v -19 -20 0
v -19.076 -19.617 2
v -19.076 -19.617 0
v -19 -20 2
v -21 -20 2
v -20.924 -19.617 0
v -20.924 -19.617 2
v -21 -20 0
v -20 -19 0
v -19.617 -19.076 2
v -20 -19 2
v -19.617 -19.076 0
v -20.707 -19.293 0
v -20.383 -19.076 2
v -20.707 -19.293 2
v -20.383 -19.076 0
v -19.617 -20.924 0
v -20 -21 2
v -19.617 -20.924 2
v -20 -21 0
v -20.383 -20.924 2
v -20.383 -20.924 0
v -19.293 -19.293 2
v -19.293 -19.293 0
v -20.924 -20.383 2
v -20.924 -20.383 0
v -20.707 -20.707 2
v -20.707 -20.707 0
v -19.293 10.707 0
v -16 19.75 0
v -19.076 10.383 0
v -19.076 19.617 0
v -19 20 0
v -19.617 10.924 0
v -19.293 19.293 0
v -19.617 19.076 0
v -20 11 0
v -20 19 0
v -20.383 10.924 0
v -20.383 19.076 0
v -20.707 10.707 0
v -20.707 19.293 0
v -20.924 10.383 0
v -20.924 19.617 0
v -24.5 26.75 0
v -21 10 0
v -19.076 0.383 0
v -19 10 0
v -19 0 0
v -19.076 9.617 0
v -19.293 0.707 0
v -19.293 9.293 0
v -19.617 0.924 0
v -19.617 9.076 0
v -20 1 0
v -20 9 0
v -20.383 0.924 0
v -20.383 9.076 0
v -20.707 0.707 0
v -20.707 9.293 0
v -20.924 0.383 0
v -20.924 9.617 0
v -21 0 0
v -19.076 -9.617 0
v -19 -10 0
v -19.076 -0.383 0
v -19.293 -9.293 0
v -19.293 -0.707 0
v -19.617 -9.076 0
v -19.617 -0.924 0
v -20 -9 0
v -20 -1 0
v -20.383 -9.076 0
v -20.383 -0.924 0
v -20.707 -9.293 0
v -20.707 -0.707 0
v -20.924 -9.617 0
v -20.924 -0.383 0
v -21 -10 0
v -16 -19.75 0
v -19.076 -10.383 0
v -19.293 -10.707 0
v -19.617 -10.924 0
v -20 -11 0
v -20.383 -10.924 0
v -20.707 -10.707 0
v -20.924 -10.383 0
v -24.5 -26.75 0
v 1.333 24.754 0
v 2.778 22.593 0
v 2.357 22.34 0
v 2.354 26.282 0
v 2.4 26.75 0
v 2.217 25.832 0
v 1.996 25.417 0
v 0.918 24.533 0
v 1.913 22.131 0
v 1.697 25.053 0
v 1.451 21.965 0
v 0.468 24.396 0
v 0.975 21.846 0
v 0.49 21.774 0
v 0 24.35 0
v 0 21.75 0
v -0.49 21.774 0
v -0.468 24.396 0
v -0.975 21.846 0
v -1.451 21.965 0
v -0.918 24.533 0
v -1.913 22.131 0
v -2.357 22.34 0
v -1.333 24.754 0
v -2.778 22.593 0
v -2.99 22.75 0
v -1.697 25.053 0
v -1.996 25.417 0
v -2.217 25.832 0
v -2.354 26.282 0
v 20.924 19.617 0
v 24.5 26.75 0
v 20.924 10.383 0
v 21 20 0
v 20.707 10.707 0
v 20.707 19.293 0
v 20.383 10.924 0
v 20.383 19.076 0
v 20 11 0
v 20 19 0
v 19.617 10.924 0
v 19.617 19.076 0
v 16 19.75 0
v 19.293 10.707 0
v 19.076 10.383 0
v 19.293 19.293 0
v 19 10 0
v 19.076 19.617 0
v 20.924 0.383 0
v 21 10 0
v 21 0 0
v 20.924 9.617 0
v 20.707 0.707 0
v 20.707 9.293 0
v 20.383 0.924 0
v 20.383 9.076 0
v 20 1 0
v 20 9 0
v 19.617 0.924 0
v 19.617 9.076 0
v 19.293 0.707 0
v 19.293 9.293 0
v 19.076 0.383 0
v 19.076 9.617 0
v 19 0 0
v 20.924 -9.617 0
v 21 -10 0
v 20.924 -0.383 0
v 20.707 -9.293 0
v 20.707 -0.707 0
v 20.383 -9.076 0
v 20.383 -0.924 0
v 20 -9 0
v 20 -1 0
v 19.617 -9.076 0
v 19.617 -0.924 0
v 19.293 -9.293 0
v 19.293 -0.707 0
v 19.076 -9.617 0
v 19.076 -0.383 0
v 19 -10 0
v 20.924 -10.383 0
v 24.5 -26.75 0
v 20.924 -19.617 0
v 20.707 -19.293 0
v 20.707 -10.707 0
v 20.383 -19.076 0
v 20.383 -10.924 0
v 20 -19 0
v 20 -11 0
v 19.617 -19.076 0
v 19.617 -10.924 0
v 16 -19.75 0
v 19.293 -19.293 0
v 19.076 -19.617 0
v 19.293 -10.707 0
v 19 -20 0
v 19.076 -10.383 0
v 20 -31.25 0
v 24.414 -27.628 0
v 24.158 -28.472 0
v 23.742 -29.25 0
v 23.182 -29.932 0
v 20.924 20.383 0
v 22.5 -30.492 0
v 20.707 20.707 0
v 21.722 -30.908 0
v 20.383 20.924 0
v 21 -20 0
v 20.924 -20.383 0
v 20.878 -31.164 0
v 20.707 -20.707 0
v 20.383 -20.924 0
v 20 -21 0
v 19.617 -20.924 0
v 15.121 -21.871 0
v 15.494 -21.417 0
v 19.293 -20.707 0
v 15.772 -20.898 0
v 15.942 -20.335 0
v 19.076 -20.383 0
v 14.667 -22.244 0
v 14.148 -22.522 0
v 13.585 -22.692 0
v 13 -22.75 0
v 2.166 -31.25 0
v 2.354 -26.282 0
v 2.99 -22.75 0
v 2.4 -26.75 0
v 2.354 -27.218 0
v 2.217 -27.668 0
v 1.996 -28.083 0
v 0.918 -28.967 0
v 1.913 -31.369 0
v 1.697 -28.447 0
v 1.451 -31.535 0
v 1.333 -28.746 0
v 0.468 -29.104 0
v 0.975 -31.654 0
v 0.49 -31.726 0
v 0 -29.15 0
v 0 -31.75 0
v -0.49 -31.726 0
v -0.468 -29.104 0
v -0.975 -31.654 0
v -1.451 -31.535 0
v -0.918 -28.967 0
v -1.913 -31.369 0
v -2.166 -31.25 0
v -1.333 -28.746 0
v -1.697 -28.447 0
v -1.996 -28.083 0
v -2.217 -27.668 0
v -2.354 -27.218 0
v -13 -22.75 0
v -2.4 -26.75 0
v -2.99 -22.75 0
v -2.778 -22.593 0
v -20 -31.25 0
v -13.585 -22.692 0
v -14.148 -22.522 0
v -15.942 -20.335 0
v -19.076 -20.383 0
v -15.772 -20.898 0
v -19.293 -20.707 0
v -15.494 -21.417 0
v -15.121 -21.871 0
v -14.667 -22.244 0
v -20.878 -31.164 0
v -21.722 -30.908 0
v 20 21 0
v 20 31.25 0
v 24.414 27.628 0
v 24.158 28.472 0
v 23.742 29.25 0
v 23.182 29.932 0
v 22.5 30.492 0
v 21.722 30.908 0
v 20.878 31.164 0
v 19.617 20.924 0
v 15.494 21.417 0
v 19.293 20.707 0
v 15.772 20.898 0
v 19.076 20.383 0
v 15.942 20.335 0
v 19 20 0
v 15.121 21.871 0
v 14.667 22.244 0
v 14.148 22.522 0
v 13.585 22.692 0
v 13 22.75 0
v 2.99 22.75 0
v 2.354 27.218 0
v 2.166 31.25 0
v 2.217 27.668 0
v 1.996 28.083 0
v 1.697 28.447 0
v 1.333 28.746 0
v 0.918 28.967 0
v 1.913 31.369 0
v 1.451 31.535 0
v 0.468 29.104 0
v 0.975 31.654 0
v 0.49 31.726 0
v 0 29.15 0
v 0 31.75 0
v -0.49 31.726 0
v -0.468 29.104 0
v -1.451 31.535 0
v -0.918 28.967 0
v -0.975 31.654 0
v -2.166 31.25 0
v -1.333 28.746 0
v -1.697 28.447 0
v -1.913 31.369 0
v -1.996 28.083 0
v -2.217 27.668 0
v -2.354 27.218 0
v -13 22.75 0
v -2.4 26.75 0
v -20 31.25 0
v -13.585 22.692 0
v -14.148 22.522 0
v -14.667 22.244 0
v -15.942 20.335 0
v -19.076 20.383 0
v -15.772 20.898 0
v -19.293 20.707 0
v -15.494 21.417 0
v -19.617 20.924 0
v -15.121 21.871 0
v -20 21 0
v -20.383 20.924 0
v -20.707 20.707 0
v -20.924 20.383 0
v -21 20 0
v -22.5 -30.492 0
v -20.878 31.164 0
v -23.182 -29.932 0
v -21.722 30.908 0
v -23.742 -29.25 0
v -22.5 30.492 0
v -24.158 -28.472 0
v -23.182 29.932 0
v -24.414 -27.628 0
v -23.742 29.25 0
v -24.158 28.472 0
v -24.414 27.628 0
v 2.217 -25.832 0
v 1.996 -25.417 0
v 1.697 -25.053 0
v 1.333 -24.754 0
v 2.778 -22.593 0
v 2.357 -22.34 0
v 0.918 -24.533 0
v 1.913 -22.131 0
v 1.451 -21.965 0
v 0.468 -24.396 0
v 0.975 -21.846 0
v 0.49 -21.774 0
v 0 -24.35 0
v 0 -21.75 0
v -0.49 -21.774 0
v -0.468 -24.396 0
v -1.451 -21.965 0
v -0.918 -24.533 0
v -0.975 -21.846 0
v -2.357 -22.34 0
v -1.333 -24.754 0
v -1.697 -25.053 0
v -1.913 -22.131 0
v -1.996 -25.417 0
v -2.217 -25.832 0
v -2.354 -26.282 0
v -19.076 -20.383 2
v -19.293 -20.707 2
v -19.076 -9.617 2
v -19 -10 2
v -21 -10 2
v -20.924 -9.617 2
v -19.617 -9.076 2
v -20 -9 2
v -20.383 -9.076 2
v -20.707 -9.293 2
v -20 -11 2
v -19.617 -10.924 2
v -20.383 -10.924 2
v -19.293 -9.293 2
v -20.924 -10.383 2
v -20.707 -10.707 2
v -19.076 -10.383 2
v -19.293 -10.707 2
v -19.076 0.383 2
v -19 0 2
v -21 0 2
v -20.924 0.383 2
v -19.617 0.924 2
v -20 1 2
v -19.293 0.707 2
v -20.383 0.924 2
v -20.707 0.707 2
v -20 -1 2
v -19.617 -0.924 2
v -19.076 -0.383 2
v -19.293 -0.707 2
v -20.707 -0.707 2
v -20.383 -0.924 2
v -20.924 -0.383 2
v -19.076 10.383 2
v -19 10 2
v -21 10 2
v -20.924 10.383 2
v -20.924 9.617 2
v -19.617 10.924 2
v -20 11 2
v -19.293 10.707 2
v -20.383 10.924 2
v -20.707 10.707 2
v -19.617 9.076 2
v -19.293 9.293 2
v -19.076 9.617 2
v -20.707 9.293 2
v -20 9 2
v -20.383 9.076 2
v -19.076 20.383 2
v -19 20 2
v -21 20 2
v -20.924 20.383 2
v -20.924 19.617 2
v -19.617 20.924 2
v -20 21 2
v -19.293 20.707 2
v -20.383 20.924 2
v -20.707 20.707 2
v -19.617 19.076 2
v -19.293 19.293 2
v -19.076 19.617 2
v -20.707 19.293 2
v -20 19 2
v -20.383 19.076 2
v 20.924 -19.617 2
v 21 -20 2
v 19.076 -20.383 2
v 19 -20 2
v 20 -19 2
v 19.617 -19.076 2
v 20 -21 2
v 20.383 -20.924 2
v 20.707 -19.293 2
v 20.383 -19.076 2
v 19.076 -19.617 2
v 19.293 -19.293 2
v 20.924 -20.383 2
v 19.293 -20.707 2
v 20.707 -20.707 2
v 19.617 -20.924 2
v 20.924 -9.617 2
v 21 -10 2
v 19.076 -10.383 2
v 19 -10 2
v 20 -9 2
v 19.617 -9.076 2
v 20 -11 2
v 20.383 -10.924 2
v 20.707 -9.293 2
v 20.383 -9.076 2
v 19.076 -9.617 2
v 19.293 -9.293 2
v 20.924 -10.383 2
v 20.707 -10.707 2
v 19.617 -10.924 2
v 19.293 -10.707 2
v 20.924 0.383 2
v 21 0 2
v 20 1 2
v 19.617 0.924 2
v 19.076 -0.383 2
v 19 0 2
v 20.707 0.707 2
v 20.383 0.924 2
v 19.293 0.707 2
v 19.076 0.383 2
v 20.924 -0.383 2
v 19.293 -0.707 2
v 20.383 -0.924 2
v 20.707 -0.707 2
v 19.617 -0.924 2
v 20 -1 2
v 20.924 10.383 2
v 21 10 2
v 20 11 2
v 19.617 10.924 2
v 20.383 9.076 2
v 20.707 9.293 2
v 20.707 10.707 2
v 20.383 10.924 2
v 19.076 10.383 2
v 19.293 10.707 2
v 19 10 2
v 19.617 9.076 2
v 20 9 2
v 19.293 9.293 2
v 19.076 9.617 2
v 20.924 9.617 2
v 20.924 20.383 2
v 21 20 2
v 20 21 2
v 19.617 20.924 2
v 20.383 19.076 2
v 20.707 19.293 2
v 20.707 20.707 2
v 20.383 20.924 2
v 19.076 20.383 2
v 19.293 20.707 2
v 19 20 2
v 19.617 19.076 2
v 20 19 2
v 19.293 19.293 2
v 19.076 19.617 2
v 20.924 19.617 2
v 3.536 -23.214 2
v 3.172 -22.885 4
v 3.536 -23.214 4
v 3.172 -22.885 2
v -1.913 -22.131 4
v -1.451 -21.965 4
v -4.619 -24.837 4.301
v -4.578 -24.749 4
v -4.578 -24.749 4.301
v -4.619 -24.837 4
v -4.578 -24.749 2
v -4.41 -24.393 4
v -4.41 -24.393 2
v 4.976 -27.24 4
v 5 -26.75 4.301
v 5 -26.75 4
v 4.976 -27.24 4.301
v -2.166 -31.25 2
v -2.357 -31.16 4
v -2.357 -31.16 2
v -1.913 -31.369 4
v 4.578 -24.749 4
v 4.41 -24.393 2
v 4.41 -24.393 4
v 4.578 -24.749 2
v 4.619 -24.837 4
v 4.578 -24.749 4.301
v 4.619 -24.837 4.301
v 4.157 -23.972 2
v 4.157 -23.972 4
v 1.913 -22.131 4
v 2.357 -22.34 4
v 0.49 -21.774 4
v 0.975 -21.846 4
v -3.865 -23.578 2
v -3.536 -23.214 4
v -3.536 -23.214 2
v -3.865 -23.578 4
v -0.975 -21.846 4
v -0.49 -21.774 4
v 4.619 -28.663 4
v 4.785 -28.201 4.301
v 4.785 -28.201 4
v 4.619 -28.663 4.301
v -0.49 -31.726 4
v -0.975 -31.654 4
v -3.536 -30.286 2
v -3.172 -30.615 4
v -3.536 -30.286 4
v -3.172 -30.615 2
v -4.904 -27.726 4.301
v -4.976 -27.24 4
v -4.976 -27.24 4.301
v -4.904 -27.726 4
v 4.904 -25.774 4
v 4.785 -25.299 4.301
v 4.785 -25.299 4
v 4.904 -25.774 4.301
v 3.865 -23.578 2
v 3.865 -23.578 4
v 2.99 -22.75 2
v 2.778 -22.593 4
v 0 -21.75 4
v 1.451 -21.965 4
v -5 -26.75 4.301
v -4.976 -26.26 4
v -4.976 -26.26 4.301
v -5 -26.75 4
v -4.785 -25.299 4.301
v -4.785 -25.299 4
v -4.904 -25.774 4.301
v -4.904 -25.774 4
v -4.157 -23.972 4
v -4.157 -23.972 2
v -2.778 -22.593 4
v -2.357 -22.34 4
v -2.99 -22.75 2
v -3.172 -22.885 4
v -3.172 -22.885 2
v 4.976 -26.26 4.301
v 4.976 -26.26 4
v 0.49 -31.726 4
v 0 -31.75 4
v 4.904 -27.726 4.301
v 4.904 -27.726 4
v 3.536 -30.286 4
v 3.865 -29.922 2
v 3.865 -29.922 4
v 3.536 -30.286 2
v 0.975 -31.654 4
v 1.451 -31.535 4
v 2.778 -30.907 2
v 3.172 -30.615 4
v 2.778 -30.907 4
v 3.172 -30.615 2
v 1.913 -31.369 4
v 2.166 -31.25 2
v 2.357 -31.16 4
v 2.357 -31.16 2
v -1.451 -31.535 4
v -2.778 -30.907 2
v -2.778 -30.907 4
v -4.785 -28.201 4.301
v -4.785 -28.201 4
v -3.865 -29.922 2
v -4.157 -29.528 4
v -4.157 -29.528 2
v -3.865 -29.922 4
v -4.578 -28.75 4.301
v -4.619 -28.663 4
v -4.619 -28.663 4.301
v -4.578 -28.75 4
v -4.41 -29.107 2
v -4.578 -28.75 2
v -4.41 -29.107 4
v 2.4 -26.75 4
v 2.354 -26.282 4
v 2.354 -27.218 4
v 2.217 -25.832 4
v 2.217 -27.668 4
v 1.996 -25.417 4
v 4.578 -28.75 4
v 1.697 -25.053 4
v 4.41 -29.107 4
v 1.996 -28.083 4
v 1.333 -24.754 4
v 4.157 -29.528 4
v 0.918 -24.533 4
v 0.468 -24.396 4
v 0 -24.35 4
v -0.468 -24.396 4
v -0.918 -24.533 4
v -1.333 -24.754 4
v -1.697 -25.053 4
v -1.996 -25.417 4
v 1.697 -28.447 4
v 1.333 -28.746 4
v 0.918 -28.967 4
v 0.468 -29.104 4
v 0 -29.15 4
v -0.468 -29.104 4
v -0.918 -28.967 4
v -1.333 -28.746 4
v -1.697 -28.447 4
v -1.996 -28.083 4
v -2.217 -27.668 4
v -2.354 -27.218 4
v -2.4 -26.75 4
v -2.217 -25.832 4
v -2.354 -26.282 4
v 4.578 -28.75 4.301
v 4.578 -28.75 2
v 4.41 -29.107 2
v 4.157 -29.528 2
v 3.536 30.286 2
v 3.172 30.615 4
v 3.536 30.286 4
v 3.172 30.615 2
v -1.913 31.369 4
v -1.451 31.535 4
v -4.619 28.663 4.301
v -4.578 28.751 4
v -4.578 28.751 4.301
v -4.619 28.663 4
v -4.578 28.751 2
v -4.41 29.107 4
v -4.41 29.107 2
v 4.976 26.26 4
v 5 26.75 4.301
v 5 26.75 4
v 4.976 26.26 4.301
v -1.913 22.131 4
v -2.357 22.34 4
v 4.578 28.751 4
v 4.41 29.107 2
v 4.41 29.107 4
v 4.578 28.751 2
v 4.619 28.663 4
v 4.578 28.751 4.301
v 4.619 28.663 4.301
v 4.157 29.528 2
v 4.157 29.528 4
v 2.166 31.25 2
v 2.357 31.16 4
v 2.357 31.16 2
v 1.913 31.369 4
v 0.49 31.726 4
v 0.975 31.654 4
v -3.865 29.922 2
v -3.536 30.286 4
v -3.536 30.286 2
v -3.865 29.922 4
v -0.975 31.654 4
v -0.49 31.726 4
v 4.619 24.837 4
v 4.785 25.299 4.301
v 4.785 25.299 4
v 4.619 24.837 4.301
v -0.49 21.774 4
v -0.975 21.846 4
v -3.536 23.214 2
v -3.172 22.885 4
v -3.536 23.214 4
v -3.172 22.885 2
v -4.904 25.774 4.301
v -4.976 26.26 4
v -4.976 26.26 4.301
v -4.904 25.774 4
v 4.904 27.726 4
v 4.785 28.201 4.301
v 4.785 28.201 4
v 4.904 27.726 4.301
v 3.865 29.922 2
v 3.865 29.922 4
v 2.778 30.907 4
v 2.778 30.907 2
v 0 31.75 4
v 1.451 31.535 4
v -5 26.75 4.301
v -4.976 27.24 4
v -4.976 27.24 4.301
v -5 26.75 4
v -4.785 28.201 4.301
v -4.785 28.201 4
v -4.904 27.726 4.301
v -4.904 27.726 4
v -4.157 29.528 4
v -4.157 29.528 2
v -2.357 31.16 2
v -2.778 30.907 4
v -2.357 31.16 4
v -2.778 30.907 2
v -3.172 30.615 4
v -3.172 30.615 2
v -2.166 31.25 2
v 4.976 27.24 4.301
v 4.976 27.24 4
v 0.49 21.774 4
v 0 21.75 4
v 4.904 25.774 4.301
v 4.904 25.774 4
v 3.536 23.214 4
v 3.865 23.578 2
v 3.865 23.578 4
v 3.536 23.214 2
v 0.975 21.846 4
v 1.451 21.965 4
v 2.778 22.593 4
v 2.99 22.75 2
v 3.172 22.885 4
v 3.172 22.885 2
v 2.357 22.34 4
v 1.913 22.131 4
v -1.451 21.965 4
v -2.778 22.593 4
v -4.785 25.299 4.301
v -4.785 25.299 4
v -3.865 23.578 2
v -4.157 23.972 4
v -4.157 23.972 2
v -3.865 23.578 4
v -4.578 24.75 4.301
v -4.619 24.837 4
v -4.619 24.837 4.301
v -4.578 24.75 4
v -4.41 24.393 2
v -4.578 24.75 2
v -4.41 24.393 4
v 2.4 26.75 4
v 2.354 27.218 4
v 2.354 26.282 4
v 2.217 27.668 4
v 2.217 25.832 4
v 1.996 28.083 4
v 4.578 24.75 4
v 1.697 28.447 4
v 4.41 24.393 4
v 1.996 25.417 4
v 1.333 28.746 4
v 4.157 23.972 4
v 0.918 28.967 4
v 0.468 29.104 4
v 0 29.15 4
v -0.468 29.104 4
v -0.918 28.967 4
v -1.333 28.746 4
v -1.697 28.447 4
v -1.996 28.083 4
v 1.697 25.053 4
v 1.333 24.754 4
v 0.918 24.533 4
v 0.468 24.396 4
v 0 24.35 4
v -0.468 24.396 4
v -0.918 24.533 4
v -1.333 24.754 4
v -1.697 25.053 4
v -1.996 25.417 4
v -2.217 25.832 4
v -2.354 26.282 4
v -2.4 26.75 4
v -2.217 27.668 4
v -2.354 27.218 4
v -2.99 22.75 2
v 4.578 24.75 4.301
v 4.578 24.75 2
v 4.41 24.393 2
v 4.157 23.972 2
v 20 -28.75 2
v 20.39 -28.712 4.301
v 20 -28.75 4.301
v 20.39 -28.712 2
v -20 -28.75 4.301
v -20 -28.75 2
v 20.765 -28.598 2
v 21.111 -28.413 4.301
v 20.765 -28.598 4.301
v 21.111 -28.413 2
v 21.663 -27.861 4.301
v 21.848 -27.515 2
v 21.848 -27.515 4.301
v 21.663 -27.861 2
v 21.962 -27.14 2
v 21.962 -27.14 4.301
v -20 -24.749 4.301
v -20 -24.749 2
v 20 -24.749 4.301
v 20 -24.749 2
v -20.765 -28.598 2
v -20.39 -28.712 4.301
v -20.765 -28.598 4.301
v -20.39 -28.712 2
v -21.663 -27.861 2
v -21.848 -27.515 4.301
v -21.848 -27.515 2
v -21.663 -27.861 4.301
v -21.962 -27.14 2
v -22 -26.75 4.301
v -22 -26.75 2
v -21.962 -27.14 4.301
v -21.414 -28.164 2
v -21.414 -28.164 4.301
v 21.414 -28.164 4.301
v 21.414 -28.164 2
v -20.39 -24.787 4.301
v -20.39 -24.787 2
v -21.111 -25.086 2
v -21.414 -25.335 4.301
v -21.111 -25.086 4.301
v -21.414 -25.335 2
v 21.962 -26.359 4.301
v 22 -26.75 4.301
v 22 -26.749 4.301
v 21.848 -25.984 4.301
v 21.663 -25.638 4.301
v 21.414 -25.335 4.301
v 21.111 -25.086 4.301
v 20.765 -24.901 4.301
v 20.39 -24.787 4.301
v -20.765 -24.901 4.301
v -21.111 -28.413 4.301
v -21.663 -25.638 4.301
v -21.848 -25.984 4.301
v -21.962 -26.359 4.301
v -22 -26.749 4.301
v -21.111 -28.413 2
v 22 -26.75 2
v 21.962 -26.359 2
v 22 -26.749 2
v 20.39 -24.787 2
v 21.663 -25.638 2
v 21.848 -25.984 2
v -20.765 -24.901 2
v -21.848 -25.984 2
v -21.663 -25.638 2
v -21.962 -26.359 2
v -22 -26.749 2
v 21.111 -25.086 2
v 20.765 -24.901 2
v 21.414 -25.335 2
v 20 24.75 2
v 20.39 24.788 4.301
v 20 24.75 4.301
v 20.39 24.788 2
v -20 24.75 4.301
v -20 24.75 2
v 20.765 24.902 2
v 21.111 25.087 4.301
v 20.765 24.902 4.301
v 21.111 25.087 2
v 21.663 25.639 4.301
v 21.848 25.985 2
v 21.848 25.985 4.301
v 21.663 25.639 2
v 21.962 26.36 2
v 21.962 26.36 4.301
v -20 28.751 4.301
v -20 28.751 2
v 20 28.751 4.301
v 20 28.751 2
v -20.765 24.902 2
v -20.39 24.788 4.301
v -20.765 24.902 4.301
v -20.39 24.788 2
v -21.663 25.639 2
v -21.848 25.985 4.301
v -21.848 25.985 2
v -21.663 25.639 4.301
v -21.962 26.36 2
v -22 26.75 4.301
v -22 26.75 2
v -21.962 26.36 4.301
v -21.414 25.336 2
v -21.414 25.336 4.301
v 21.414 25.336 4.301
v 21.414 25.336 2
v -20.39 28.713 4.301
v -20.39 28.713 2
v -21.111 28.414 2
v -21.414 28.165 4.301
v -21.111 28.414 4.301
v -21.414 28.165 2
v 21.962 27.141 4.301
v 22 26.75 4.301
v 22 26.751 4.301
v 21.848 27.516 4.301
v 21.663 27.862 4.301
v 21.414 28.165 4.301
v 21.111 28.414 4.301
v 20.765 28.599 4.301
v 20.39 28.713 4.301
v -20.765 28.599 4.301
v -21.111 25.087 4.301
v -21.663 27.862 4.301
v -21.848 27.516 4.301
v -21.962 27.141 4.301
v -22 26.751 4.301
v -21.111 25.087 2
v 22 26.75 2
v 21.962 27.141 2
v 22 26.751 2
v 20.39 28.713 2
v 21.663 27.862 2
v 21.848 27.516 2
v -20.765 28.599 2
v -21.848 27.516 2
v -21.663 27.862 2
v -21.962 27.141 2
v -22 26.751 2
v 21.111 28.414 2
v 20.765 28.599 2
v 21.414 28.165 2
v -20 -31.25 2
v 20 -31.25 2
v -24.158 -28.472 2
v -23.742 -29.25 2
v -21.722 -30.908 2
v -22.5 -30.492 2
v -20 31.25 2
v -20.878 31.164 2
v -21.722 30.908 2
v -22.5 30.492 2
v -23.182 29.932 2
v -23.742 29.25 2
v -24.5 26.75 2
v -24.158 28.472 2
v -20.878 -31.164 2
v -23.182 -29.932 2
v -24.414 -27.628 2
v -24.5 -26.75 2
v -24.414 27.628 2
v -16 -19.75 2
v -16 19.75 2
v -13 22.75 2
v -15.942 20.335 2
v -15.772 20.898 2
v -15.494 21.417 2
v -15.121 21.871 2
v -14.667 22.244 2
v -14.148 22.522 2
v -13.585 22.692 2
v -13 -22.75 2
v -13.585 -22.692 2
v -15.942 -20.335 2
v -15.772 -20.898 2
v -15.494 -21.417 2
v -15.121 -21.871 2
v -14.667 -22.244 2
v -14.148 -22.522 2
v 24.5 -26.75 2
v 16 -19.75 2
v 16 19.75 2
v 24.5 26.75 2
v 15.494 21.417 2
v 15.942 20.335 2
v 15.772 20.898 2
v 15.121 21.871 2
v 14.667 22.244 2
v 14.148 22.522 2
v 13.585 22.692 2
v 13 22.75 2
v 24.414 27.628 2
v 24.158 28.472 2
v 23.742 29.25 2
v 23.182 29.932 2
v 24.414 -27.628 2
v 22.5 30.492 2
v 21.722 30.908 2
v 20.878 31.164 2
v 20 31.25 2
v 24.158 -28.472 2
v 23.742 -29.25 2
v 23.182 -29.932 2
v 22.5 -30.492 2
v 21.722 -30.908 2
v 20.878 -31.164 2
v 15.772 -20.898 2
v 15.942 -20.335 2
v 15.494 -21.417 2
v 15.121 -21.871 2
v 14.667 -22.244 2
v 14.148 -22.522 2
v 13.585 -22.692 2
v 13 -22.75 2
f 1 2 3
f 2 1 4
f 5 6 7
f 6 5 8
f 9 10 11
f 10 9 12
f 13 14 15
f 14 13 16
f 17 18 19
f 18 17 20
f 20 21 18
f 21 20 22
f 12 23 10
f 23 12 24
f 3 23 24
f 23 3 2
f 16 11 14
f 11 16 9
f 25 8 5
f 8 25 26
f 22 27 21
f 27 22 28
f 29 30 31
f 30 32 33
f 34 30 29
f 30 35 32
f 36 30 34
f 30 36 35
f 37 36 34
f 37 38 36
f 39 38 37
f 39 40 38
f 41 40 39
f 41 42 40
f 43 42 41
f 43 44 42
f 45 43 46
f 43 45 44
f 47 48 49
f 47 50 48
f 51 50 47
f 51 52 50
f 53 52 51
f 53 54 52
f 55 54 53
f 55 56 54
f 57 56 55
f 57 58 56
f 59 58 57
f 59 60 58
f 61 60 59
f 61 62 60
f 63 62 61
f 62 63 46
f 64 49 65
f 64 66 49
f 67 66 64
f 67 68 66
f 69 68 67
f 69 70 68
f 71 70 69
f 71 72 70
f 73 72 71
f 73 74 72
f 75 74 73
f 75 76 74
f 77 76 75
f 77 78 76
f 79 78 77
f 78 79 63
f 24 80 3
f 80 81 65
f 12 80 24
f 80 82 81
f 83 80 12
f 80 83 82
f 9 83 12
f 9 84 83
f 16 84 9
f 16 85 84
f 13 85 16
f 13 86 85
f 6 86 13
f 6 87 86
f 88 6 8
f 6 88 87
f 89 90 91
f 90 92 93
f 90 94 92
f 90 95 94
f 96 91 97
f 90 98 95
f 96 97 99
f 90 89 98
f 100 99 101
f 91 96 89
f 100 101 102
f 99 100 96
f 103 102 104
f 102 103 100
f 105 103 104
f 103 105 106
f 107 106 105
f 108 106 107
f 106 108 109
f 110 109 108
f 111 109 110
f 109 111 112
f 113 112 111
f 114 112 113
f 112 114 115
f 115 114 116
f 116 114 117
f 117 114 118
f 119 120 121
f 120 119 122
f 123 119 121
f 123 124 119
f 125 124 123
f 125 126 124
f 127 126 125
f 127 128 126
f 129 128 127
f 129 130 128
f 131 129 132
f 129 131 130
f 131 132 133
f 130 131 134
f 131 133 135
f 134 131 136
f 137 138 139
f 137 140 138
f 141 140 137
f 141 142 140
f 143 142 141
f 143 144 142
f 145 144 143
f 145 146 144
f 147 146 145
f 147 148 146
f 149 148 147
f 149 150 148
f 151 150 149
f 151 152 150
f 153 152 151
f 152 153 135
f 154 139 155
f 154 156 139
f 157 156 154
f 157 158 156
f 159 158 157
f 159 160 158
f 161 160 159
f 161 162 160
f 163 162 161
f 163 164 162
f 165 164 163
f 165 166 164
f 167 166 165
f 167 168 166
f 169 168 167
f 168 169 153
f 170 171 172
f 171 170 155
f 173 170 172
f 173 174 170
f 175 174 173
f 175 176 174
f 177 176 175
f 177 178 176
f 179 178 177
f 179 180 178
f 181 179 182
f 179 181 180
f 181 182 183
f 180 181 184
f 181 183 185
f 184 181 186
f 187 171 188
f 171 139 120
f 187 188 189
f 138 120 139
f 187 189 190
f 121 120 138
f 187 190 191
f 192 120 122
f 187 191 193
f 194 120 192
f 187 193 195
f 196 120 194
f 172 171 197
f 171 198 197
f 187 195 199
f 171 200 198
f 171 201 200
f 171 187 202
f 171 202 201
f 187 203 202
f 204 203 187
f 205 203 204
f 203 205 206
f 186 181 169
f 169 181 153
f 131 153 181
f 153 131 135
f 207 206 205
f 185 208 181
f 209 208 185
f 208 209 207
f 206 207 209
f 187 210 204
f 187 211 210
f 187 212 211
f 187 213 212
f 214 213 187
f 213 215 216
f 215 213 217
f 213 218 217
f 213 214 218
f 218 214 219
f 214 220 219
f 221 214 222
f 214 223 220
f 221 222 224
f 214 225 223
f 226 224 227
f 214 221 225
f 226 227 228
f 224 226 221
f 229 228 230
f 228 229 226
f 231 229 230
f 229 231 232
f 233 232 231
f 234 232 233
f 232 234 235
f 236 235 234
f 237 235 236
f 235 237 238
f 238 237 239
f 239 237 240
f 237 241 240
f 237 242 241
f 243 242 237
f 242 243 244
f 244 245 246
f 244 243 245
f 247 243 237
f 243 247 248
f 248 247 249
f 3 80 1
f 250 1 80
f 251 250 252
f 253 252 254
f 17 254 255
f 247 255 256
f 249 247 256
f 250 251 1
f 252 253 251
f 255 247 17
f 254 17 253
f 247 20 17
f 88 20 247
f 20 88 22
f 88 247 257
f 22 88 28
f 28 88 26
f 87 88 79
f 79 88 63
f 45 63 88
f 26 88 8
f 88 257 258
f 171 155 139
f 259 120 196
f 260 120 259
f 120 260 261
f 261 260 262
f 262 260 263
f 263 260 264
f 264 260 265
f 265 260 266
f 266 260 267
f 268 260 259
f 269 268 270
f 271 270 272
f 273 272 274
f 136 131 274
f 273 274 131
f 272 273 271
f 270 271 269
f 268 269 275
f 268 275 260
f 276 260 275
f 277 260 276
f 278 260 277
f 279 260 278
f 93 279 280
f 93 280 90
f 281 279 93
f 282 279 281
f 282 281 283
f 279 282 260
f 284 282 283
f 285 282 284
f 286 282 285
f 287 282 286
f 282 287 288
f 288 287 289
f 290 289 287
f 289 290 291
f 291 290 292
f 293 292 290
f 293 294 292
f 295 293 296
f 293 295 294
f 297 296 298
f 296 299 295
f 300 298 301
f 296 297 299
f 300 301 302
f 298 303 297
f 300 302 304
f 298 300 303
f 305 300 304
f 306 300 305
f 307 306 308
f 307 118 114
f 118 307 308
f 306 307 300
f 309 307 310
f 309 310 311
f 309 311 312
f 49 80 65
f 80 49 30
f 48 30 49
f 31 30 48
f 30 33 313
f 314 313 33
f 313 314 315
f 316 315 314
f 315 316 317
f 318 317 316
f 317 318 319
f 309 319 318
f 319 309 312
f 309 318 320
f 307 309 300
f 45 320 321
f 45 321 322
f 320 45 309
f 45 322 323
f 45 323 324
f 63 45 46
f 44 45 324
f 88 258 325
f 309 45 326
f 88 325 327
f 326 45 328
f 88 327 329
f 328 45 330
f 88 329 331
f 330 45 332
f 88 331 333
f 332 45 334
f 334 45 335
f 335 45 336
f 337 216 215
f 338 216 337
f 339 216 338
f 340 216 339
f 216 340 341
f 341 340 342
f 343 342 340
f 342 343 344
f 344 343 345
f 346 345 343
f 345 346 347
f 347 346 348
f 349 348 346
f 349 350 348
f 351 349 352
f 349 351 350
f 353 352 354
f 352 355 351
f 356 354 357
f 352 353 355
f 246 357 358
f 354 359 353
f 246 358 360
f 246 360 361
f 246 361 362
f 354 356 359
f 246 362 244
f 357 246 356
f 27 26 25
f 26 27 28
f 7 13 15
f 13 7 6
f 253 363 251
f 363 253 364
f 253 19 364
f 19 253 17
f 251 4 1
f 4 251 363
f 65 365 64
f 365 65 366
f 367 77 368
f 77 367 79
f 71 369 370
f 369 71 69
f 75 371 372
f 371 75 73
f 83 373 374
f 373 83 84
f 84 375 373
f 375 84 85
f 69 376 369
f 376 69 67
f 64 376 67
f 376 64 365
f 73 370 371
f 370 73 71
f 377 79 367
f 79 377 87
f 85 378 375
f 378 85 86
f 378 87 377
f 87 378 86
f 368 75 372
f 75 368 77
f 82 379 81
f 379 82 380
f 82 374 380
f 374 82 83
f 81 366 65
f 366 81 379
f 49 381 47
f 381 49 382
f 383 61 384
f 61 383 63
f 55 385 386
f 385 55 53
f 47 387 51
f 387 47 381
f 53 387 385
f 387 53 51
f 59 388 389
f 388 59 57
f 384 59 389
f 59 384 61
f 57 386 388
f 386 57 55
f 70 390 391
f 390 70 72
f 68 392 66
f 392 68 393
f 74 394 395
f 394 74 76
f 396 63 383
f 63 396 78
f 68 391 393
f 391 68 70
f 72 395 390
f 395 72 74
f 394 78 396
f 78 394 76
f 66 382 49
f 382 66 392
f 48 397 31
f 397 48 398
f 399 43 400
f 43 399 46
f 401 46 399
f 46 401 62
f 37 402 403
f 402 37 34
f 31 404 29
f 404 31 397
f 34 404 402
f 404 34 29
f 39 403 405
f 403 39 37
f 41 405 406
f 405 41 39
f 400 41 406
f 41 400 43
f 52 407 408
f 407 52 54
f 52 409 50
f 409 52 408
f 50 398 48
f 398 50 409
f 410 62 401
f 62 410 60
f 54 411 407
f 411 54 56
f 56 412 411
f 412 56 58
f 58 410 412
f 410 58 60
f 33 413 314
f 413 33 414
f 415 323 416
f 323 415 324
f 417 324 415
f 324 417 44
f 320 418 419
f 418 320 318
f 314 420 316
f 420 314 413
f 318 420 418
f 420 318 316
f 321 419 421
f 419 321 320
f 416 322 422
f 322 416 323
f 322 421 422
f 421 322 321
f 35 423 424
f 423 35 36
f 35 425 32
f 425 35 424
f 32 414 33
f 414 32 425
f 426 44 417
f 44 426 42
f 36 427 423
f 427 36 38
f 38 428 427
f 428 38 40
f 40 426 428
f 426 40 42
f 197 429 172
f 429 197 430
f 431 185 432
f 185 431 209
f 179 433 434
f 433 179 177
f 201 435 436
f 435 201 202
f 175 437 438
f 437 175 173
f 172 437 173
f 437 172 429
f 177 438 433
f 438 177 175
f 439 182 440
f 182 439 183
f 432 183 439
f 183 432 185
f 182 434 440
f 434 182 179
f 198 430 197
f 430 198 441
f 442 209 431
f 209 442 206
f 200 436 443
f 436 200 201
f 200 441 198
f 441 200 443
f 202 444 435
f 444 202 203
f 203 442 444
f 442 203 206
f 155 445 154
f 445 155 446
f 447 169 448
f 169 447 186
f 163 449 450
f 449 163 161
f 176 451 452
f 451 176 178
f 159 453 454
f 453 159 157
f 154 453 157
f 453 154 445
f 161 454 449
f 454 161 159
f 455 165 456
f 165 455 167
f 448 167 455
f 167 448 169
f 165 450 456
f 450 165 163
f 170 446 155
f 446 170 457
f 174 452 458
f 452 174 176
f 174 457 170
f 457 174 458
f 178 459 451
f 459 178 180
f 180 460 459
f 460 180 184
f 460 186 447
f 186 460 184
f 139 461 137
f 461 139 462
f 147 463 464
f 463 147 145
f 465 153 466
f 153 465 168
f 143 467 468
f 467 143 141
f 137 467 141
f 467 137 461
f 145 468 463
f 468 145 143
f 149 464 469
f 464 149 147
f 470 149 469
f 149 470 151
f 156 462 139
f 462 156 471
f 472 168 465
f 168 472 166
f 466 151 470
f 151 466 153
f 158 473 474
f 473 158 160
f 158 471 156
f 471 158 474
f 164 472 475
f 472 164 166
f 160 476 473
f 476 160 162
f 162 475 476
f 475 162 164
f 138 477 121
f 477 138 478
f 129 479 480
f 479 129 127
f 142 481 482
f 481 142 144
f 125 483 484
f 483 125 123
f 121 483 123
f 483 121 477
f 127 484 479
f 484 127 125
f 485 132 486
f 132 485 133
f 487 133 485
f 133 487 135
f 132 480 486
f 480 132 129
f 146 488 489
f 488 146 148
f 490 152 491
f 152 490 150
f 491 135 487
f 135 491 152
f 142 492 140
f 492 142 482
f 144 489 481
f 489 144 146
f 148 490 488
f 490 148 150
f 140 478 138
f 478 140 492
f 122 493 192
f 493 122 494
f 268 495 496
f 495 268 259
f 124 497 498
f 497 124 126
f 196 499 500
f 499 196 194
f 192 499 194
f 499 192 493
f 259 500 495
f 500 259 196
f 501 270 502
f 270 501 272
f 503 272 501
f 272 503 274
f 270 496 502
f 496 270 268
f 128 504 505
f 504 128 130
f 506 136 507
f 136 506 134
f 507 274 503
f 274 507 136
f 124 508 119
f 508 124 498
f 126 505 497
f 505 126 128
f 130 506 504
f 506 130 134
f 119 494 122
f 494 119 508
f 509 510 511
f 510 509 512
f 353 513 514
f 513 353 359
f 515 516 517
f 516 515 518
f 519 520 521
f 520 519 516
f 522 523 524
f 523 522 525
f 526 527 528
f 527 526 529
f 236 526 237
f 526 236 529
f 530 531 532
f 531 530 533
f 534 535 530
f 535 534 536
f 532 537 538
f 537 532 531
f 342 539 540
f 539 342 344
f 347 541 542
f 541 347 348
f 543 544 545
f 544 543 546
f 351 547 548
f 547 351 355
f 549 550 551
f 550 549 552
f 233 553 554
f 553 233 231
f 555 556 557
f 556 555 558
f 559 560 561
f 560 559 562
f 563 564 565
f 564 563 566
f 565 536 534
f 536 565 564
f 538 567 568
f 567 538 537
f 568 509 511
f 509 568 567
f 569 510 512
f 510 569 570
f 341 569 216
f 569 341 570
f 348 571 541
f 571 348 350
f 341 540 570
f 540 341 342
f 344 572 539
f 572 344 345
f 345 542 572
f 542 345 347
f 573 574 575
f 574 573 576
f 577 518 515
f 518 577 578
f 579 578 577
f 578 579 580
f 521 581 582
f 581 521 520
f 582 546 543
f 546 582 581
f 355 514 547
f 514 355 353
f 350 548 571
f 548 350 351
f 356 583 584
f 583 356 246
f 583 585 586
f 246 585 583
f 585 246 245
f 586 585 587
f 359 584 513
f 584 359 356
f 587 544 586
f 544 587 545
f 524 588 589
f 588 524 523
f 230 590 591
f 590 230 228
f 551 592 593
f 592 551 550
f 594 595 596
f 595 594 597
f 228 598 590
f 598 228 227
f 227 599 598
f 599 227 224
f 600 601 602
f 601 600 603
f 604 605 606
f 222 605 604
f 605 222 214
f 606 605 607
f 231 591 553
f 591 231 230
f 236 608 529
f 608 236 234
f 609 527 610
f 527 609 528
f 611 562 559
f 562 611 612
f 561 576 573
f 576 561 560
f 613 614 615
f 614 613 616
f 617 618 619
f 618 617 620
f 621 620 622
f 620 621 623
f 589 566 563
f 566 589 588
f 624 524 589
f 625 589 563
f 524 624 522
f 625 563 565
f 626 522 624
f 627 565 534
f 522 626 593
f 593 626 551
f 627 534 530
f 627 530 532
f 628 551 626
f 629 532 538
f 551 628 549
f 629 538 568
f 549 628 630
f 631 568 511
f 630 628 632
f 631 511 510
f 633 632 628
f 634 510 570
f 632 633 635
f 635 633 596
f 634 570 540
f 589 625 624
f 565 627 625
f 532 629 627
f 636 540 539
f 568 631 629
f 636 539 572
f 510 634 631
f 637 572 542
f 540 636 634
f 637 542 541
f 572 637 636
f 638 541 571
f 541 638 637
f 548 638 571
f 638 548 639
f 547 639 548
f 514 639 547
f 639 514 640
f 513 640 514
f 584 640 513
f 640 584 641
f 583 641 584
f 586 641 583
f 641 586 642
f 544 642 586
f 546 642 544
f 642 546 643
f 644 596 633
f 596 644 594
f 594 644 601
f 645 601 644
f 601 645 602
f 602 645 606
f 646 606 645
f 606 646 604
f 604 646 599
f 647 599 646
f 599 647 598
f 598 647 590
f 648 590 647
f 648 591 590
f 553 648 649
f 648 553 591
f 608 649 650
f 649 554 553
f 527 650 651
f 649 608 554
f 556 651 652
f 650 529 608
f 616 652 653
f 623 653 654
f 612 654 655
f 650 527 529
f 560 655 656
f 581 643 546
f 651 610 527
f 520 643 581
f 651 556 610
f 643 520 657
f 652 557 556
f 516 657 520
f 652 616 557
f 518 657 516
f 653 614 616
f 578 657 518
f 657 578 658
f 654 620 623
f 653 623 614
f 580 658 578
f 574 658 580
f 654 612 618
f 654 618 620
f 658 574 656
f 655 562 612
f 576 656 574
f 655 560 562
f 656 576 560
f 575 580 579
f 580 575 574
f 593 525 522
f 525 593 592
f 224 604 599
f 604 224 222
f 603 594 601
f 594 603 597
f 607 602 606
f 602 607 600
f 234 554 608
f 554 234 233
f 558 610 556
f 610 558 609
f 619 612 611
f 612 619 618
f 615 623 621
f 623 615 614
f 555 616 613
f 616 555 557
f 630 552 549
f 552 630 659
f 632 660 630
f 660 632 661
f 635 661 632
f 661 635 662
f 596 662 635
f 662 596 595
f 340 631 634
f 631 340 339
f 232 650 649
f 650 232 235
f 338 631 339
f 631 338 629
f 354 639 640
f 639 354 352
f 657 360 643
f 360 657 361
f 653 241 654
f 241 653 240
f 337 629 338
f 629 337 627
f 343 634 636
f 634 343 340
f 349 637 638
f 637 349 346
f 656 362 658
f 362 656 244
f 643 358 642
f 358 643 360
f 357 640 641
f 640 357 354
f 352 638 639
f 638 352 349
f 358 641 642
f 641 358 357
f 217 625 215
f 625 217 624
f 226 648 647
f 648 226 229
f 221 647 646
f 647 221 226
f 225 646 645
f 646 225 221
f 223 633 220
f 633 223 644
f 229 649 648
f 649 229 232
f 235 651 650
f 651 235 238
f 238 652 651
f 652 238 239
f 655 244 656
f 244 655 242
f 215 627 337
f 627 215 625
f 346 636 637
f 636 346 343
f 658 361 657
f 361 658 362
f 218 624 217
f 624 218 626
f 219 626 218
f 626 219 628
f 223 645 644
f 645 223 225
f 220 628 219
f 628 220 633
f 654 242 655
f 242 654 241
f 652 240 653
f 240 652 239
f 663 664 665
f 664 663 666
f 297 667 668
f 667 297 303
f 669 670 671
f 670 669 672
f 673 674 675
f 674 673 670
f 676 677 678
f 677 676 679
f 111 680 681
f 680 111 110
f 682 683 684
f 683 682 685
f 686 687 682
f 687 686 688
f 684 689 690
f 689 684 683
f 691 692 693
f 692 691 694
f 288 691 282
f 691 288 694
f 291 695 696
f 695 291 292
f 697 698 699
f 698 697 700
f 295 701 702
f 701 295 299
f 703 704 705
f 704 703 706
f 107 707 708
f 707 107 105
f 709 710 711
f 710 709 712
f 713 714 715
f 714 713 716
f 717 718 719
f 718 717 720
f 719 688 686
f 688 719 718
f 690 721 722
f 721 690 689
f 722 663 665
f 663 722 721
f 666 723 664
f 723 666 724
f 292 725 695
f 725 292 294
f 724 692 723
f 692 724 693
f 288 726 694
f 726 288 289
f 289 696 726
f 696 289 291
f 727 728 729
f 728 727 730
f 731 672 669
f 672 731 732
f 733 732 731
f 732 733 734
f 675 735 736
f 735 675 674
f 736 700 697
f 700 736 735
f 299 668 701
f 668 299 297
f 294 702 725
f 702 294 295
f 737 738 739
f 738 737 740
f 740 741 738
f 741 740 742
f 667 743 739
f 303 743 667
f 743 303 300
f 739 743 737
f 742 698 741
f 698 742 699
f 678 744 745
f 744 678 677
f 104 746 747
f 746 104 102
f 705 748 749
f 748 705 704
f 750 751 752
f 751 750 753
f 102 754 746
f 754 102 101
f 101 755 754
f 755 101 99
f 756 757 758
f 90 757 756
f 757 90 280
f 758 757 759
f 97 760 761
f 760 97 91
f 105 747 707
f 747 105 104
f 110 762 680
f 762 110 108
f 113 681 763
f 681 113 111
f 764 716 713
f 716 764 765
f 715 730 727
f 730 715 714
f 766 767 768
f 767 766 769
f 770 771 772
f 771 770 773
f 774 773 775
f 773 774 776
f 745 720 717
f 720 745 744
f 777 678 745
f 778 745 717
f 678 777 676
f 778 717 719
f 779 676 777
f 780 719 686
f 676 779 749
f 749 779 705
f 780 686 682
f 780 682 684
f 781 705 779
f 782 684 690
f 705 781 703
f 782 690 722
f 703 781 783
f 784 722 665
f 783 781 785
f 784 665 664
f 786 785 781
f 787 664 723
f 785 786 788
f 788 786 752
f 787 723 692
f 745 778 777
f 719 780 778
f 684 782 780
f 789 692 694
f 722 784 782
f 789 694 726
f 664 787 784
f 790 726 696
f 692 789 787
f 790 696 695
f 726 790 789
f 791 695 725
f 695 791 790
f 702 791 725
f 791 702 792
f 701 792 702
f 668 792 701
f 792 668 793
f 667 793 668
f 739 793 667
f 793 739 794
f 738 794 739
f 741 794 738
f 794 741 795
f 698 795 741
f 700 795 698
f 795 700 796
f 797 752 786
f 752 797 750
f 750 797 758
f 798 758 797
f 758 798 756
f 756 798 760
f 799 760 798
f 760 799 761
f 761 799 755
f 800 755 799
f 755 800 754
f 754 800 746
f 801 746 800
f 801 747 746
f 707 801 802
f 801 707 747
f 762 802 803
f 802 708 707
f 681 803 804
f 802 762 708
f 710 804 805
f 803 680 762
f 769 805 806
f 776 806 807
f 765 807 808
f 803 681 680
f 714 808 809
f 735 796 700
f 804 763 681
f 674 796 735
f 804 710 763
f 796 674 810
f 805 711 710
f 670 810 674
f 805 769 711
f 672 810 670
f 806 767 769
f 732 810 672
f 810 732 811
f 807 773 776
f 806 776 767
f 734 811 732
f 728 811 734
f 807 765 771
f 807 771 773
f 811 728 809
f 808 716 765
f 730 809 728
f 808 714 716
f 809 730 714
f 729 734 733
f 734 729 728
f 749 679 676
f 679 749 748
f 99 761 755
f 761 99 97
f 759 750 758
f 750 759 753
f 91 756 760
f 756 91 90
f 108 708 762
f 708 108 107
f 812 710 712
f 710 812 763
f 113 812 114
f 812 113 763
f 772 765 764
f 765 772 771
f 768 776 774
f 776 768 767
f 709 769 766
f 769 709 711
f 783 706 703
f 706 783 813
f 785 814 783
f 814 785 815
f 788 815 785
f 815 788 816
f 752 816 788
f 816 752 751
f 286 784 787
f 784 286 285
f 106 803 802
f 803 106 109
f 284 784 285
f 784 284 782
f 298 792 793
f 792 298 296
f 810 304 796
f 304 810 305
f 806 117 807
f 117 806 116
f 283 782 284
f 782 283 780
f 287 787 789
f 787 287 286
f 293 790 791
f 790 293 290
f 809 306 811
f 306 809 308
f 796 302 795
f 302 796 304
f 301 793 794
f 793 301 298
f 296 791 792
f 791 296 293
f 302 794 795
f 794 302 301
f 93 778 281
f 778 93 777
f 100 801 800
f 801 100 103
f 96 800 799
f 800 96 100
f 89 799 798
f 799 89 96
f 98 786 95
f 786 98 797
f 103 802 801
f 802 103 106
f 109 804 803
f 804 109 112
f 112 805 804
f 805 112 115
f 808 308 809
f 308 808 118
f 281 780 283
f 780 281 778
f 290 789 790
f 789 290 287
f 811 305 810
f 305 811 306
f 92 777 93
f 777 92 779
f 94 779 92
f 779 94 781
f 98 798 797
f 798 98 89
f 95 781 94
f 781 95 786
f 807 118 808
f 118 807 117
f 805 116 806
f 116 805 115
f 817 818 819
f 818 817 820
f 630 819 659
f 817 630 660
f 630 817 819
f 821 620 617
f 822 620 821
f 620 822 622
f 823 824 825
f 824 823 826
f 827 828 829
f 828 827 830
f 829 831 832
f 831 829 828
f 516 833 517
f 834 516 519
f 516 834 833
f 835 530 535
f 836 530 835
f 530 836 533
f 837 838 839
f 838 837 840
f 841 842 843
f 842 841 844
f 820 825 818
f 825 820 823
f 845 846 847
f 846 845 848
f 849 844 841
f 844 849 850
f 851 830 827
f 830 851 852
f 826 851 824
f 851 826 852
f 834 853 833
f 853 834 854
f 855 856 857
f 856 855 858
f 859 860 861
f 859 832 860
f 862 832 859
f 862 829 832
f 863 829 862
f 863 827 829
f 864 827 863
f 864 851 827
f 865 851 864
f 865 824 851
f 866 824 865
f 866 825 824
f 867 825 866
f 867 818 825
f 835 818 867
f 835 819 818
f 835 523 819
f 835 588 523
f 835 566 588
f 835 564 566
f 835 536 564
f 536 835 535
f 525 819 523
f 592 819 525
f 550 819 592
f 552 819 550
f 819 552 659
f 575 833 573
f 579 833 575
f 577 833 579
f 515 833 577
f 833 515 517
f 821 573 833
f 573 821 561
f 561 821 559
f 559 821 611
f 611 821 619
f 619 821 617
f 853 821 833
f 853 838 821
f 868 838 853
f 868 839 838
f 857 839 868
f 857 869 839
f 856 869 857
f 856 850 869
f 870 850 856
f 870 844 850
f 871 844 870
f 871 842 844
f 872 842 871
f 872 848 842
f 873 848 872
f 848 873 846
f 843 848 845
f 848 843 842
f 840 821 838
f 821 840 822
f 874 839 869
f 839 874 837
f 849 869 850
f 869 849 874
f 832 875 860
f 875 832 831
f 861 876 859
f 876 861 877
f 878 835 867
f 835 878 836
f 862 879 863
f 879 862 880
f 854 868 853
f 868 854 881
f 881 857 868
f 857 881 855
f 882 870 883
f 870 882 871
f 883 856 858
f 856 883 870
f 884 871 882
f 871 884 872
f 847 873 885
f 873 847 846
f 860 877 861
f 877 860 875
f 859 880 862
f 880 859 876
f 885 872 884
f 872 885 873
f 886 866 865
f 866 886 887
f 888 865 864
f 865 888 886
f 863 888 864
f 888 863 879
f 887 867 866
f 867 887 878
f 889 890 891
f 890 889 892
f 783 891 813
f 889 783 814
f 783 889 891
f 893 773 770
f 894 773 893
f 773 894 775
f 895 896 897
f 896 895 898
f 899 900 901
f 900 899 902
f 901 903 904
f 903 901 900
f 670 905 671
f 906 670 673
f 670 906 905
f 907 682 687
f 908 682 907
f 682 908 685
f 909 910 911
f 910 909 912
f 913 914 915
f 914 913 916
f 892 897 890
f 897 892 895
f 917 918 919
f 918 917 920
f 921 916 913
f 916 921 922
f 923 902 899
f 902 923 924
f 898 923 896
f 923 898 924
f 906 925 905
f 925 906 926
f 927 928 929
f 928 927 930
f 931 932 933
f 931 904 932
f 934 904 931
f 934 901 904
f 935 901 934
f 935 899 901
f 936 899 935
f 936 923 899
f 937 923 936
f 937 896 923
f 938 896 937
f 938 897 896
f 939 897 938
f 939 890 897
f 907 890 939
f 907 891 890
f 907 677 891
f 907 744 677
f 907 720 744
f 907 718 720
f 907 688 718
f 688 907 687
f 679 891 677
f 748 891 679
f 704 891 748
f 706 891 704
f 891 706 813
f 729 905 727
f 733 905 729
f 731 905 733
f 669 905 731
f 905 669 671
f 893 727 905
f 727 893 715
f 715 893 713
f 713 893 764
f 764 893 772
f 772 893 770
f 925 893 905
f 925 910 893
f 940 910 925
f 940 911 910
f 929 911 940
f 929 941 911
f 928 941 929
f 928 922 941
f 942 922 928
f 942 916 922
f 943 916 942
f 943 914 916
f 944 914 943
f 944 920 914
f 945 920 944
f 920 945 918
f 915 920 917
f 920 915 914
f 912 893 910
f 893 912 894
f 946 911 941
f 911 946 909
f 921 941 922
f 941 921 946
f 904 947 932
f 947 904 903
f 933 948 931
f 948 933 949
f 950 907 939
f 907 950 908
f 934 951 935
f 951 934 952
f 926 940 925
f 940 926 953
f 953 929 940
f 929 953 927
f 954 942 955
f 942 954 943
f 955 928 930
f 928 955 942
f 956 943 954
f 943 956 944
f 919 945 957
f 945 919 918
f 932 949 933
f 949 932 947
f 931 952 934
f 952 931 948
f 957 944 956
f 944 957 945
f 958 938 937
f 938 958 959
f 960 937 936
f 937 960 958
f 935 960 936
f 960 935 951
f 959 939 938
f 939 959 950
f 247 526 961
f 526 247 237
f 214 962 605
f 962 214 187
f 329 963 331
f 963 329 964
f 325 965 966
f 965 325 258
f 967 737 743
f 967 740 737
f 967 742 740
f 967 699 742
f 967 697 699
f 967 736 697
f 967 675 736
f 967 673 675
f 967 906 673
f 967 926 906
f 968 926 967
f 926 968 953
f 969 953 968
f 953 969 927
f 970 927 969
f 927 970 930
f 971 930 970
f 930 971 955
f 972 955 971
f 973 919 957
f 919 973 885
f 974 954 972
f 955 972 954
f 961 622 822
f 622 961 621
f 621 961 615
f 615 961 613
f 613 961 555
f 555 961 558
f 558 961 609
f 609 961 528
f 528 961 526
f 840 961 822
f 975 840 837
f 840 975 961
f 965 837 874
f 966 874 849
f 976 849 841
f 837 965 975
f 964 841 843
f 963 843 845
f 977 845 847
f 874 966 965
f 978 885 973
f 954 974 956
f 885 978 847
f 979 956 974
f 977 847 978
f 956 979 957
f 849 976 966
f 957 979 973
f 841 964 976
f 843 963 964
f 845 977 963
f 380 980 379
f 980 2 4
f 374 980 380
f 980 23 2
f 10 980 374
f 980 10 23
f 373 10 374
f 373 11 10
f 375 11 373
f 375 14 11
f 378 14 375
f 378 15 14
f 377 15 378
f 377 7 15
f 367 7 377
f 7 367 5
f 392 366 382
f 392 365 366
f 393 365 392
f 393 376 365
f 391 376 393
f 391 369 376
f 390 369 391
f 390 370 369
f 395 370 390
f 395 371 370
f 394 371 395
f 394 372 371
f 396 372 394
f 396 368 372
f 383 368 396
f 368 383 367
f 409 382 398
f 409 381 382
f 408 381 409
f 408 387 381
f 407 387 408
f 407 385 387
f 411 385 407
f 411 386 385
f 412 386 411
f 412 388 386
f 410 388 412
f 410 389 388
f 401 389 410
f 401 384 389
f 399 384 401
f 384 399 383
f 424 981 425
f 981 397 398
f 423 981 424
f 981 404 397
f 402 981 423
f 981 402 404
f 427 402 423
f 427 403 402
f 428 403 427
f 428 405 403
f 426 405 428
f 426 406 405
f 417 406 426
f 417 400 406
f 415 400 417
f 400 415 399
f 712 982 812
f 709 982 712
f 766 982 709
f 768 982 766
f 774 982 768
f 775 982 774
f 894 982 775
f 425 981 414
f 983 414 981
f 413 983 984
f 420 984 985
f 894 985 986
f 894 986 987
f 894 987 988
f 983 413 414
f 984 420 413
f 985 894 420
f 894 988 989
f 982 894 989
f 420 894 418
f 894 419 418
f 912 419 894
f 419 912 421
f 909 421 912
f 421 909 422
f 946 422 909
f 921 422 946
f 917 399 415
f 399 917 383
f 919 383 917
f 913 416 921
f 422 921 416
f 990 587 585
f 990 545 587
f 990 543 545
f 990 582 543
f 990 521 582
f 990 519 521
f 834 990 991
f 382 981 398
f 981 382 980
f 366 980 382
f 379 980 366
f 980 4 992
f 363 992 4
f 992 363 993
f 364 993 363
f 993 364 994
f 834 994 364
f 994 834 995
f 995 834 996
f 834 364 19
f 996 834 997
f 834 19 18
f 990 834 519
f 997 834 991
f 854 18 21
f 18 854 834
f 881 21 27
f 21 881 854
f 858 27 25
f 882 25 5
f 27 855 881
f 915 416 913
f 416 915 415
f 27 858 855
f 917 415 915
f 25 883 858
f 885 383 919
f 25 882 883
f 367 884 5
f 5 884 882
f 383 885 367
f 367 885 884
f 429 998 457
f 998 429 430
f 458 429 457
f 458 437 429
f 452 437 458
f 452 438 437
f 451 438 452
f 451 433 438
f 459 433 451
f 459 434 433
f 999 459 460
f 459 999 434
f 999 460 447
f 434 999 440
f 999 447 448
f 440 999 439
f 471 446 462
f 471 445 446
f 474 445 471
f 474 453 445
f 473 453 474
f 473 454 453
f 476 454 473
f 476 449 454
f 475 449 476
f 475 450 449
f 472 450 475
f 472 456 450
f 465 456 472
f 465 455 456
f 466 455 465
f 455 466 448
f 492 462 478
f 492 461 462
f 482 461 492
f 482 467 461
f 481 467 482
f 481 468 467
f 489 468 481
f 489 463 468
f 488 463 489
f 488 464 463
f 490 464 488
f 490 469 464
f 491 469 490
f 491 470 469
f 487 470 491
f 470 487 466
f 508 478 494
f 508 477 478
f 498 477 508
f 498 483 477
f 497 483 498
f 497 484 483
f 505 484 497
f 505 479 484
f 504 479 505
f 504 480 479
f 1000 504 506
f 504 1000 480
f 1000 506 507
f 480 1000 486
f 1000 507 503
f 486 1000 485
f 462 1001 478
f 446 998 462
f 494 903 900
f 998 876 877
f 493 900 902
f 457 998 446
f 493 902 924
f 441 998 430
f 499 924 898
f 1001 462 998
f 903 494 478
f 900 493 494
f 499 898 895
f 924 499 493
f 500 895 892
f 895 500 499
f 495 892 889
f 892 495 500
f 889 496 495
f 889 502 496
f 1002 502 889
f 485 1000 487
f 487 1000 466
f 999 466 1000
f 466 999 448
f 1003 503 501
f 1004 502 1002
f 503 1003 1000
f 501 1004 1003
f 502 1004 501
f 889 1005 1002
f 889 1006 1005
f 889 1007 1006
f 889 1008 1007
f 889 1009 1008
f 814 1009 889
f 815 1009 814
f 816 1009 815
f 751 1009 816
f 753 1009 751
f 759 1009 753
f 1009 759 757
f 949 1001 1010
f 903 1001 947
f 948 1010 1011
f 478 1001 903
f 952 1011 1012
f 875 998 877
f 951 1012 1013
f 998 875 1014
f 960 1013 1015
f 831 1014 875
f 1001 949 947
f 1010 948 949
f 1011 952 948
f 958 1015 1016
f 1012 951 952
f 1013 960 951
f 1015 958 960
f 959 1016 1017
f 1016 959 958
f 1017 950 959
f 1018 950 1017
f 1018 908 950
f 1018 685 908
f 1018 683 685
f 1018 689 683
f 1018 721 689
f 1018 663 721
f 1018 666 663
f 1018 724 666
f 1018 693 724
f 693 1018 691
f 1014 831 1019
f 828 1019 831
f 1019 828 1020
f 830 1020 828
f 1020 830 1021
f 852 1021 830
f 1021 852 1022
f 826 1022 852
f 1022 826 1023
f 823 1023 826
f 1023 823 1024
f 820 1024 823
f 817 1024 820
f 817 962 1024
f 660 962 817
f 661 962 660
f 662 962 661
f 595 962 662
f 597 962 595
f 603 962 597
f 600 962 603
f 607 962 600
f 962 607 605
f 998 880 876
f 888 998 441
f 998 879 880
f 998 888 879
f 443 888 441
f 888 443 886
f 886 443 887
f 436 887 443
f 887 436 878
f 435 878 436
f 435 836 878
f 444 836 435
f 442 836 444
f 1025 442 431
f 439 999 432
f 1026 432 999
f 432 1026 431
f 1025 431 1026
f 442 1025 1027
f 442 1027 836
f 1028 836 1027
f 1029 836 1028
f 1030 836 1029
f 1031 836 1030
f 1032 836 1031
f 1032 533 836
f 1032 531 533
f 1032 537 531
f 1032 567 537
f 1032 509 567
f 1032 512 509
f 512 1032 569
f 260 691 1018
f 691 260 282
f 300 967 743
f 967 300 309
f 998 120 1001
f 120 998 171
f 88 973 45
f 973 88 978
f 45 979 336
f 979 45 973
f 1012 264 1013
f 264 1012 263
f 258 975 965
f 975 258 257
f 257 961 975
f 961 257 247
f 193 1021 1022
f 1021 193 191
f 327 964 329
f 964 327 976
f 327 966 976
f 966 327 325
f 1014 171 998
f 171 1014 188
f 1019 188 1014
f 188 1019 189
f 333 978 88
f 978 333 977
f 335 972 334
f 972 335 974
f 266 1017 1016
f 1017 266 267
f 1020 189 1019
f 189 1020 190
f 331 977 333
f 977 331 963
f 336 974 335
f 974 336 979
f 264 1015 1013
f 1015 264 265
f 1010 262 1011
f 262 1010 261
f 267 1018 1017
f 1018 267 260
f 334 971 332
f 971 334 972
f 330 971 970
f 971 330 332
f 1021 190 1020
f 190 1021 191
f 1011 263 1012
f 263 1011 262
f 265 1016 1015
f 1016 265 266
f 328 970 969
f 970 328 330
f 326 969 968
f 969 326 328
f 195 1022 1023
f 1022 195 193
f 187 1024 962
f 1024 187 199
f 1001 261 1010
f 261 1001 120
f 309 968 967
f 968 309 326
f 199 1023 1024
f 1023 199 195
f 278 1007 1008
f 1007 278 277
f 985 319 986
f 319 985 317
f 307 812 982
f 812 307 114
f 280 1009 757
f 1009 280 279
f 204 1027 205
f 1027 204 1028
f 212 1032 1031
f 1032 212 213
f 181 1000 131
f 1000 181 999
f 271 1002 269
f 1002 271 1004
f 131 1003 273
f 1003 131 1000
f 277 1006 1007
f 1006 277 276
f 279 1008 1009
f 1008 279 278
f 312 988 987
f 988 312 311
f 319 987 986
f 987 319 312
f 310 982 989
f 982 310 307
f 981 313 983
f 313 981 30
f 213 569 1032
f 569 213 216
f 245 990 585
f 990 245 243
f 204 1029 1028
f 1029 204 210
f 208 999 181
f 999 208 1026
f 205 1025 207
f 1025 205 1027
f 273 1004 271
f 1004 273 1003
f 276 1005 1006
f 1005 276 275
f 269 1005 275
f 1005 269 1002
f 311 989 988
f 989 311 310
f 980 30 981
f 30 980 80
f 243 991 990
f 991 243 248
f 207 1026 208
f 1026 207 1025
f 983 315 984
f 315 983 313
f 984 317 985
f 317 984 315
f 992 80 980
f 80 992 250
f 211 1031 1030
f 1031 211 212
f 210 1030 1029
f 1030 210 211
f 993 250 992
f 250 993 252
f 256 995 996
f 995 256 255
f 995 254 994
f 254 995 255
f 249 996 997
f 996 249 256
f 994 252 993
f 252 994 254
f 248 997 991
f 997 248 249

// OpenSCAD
L1=40;
W1=53.5;
W2=53.5;

difference() {
    
    union() {
    
    minkowski() {
        translate([-L1/2,-W1/2])
        cube([L1,W1,2]);
        
        cylinder(d=9,h=0.0001,$fn=32);
    }

    for(s=[-1:2:1])
    translate([0,s*W2/2,0])
    difference() {
        minkowski() {
            translate([-40/2,0,0])
            cube([40,0.001,4.3]);
    
            cylinder(d=4,h=0.001,$fn=32);
        }

        cylinder(d=10,h=6,$fn=64);
    
    }
}


    for(i=[-2:2]) {
        for(j=[-2:2]) {
      
            if(!(abs(i)==4 && abs(j)==3)) {
                translate([i*10,j*10,0])
                cylinder(d=2,h=4,$fn=16);
            }
        
        }
    }
    
    minkowski() {
        translate([-L1/2+7,-W1/2+7])
        cube([L1-14,W1-14,2]);
        
        cylinder(d=6,h=0.0001,$fn=32);
    }

        translate([0,-W2/2,0])
        standoffh();
        
        translate([0,W2/2,0])
        standoffh();
}

    translate([0,-W2/2,0])
    standoff();
    
    translate([0,W2/2,0])
    standoff();



module standoff() {
    difference() {
        cylinder(d1=10,d2=10,h=4,$fn=64);
        cylinder(d=4.8,h=4,$fn=32);
    }
}
module standoffh() {
        cylinder(d=6,h=6,$fn=32);
}
